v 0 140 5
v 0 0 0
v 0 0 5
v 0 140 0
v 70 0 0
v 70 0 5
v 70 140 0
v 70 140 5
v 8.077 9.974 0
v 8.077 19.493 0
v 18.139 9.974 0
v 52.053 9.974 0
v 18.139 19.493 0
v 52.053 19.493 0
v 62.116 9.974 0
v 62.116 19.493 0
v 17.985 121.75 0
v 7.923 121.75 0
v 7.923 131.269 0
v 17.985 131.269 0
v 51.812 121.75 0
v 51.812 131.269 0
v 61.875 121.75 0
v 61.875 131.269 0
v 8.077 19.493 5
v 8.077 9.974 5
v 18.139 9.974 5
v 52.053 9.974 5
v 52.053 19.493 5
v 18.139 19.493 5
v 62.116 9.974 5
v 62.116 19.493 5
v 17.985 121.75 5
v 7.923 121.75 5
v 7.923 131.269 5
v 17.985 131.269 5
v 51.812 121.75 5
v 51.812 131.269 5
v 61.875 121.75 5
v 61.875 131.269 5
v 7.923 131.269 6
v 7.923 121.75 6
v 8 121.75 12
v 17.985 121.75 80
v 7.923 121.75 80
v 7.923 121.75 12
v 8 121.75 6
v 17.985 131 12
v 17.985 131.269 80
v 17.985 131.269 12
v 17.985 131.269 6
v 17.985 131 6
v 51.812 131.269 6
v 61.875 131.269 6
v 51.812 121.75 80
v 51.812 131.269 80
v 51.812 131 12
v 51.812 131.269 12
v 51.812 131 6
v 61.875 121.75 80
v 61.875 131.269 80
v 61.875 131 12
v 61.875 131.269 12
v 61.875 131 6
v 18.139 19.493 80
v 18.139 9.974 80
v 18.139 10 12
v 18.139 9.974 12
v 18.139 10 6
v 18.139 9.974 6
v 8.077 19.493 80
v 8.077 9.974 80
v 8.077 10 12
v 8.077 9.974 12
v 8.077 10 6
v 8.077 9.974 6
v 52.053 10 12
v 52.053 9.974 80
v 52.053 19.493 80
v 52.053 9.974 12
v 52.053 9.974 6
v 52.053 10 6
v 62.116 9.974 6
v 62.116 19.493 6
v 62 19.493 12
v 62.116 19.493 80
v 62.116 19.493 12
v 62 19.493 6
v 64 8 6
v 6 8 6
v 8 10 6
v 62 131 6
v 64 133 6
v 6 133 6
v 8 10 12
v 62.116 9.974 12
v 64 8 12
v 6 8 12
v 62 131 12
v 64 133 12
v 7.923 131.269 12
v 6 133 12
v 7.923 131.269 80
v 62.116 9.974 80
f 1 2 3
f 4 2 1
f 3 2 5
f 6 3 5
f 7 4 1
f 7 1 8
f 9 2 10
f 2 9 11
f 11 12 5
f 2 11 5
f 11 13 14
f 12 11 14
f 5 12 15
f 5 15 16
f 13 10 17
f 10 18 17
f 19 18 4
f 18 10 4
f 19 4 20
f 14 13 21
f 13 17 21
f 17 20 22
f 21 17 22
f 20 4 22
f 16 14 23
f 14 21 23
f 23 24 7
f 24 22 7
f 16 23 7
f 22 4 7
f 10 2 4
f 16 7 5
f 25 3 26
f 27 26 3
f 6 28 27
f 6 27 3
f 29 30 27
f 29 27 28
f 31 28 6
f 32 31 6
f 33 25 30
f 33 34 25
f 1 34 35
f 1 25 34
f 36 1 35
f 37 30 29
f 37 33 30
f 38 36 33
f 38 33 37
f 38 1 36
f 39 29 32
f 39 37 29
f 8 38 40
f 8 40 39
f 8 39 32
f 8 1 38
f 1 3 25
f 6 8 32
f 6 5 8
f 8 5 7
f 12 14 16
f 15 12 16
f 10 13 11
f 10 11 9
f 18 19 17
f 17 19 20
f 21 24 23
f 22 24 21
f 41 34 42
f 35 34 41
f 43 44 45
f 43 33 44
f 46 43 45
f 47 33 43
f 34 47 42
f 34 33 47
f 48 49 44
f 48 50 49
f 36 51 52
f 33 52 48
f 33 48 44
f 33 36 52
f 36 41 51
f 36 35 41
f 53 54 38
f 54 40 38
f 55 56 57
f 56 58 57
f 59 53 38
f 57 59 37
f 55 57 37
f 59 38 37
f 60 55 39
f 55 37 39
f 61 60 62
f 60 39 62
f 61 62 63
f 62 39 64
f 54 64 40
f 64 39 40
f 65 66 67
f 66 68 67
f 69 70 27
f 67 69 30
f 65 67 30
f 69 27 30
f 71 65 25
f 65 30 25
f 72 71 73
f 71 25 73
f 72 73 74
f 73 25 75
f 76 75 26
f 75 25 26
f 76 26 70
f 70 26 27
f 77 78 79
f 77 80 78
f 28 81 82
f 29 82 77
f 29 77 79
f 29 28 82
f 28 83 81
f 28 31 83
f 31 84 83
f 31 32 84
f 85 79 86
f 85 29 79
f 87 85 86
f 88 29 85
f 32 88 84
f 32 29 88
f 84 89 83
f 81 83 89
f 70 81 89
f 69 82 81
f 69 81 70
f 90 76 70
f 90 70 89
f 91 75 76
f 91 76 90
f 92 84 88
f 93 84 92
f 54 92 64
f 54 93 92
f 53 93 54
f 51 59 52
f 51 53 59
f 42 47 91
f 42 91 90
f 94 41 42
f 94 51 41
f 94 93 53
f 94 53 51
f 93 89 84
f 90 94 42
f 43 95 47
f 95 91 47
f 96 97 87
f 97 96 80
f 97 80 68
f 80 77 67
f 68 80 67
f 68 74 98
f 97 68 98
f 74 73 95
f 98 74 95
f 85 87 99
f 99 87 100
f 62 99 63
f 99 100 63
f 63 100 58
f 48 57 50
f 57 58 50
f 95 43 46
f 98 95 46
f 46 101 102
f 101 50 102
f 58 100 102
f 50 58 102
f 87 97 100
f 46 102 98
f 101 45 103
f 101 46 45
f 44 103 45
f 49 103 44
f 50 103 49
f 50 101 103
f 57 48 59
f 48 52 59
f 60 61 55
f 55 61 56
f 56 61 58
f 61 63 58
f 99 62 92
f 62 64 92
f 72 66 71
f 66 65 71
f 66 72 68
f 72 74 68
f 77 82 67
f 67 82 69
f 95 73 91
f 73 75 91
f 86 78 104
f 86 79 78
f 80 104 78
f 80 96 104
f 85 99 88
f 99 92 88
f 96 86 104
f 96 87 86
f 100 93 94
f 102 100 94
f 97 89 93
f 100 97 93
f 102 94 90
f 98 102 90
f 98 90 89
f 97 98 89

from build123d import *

# Parameters (mm, degrees)
SKETCH002_W      = 10.062535
SKETCH002_H      = 9.518799
EXTRUDE003_DEPTH = 80
SKETCH001_W      = 58
SKETCH001_H      = 125
SKETCH001_W_2    = 54
SKETCH001_H_2    = 121
EXTRUDE002_DEPTH = 6
SKETCH_W         = 70
SKETCH_H         = 140
EXTRUDE_DEPTH    = 5


with BuildPart() as legs:
    # Sketch002 → Extrude003 (new body)
    with BuildSketch(Plane.XY):
        with Locations((12.953979, 126.509788)):
            Rectangle(SKETCH002_W, SKETCH002_H)
        with Locations((56.843384, 126.509788)):
            Rectangle(SKETCH002_W, SKETCH002_H)
        with Locations((57.084308, 14.733897)):
            Rectangle(SKETCH002_W, SKETCH002_H)
        with Locations((13.107931, 14.733897)):
            Rectangle(SKETCH002_W, SKETCH002_H)
    extrude(amount=EXTRUDE003_DEPTH)


with BuildPart() as table_support:
    # Sketch001 → Extrude002 (new body)
    with BuildSketch(Plane.XY):
        with Locations((35, 70.5)):
            Rectangle(SKETCH001_W, SKETCH001_H)
        with Locations((35, 70.5)):
            Rectangle(SKETCH001_W_2, SKETCH001_H_2, mode=Mode.SUBTRACT)
    extrude(amount=EXTRUDE002_DEPTH)


with BuildPart() as table_support_1:
    # Extrude002 placement: moved
    add(table_support.part.moved(Location((0, 0, 6))))


with BuildPart() as fusion002:
    # Sketch → Extrude (new body)
    with BuildSketch(Plane.XY):
        with Locations((35, 70)):
            Rectangle(SKETCH_W, SKETCH_H)
    extrude(amount=EXTRUDE_DEPTH)

    # Fusion: union table_support
    add(table_support_1.part)

    # Fusion002: union legs
    add(legs.part)


solid = fusion002.part
